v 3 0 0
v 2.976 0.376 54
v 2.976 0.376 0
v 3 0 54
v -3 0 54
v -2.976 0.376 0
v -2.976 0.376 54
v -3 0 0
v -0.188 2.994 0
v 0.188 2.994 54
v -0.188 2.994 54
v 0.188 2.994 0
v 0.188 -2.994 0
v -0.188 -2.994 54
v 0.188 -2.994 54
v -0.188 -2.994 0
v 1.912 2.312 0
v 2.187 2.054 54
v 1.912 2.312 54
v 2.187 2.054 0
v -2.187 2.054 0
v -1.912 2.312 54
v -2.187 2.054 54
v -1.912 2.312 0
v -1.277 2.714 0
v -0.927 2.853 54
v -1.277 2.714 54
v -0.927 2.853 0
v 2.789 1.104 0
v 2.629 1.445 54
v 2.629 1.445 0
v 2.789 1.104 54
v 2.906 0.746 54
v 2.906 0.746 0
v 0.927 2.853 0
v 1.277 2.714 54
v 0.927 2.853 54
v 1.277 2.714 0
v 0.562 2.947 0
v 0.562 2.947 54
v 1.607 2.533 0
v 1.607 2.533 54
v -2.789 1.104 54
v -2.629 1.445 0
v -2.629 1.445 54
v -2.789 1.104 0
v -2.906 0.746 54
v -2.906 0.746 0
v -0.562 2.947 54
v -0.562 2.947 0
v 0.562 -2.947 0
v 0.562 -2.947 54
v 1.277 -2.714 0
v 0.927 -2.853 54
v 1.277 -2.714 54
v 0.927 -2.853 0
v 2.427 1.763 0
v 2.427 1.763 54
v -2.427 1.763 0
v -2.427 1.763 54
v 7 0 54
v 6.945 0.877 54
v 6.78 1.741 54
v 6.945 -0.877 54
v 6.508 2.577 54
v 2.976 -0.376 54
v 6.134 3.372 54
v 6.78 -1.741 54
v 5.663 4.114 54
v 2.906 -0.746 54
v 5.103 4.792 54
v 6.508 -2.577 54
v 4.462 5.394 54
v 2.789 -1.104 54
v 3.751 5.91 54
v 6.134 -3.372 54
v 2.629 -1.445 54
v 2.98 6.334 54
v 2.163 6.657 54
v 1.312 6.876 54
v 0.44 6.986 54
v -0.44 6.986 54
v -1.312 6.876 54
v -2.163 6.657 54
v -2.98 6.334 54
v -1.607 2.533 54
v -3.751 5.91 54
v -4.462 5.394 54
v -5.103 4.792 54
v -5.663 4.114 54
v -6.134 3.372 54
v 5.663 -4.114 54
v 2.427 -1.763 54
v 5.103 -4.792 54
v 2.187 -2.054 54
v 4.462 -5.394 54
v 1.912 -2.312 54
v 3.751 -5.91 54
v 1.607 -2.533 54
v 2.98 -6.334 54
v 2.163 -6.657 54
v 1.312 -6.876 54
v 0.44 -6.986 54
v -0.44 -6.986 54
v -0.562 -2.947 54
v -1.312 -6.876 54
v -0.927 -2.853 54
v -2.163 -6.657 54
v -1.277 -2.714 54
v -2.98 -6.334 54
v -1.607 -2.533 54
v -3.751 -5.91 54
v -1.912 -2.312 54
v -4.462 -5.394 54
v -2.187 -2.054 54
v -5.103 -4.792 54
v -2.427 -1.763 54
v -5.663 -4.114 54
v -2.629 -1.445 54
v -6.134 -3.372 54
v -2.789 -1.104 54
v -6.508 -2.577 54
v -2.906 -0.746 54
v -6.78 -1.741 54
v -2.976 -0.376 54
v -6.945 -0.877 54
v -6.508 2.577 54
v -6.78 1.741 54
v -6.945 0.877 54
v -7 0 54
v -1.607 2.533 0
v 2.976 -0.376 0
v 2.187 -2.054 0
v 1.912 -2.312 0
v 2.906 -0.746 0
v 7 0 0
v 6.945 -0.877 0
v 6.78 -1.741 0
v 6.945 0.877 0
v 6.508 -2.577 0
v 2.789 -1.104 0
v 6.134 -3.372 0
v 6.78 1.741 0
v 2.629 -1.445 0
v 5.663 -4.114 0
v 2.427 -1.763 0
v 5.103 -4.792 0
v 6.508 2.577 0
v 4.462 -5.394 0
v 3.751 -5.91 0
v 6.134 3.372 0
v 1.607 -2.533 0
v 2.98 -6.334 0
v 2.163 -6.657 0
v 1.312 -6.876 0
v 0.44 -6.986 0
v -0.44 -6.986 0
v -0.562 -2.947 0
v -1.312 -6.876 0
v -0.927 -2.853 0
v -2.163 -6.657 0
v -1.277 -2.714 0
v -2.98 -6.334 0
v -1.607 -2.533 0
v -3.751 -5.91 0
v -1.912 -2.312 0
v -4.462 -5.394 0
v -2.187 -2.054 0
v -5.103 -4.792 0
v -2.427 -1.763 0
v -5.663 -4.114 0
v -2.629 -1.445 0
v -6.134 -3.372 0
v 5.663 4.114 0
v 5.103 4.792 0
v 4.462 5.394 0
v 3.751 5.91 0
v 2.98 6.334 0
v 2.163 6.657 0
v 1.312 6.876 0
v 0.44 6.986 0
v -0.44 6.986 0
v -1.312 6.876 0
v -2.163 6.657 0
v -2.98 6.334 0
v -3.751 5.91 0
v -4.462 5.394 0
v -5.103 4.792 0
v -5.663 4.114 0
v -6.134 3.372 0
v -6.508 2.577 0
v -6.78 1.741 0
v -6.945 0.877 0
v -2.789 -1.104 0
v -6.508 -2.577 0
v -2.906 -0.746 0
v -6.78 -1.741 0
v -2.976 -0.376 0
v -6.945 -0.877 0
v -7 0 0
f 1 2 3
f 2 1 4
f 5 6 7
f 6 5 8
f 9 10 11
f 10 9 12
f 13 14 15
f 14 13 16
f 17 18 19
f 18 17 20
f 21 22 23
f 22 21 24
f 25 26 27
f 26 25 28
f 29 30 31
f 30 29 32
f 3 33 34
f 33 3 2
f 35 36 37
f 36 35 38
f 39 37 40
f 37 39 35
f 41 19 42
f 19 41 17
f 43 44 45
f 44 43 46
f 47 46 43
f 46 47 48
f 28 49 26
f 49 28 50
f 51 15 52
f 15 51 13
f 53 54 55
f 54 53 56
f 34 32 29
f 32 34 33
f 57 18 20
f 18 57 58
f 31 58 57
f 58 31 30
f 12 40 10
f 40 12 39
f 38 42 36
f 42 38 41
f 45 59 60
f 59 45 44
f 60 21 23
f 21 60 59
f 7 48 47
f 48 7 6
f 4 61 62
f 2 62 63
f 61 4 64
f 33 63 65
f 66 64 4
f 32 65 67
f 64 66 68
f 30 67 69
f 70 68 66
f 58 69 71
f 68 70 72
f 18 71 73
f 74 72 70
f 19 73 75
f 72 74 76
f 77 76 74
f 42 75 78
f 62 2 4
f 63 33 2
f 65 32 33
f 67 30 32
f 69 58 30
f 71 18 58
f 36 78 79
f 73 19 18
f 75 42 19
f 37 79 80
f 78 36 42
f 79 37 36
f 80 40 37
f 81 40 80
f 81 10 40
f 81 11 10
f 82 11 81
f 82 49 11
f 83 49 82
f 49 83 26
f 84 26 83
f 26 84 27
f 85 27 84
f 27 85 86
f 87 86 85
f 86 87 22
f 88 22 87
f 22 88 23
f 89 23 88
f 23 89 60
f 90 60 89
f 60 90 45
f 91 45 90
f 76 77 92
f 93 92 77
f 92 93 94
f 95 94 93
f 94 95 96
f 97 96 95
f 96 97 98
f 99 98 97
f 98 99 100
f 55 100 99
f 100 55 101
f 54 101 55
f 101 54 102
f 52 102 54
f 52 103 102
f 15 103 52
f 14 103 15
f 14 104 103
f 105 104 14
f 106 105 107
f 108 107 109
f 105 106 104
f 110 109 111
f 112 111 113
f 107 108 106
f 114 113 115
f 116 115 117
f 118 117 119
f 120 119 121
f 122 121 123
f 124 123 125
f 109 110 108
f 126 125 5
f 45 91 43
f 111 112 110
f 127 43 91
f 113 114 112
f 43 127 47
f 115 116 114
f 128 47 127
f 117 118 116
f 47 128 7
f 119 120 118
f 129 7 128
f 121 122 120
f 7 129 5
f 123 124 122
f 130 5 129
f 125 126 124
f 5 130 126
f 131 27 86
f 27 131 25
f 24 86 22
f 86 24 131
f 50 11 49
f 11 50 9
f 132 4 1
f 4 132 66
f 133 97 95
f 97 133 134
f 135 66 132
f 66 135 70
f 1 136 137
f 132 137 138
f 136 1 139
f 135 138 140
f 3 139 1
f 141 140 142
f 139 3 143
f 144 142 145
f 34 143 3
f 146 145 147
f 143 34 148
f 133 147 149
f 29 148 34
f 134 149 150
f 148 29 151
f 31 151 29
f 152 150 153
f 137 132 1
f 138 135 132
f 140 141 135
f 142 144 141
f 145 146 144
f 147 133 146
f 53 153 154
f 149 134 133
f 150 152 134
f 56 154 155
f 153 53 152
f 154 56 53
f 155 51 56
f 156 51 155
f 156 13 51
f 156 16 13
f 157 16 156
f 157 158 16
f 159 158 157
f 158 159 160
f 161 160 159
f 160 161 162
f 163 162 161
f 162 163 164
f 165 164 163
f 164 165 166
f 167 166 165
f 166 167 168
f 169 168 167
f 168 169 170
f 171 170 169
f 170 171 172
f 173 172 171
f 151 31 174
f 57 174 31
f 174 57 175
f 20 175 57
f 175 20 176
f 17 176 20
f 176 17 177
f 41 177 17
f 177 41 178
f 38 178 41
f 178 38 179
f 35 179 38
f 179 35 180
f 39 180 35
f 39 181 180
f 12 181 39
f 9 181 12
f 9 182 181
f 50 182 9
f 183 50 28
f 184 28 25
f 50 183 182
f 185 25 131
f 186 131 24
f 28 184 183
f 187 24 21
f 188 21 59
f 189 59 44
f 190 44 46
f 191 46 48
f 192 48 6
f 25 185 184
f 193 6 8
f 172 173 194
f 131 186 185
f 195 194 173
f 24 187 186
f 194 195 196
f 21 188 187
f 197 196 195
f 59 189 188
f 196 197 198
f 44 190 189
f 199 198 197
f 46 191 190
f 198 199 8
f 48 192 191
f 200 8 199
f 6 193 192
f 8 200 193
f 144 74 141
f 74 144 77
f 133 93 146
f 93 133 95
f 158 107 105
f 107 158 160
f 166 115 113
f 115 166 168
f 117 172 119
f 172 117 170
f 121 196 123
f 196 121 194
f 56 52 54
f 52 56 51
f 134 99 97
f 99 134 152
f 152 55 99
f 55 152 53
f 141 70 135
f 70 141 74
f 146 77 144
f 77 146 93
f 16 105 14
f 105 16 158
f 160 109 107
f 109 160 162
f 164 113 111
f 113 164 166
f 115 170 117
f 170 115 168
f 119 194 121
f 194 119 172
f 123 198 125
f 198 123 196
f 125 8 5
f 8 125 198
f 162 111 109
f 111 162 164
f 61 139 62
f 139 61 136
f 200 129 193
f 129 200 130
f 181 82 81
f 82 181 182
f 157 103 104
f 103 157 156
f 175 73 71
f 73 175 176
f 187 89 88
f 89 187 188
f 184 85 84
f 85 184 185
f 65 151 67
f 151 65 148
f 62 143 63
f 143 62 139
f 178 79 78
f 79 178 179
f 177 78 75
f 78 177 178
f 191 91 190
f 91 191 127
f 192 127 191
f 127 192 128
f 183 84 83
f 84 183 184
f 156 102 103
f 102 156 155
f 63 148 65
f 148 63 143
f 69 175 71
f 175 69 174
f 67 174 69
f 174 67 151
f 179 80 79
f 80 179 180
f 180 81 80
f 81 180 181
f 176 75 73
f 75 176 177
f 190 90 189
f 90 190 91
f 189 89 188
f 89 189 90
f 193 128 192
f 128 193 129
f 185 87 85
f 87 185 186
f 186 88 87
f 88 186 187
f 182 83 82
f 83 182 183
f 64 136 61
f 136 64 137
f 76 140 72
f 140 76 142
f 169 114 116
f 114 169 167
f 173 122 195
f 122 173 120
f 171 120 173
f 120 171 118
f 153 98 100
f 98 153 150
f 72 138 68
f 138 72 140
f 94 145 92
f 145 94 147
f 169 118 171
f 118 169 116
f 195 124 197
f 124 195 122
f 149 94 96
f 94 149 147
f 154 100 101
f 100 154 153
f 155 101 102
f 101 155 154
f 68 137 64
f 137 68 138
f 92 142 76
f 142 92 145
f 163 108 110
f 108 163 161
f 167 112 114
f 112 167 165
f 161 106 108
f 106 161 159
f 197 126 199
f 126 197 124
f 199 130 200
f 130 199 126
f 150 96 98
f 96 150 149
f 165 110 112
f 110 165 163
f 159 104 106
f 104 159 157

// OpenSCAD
$fn = 50;


difference() {
	union() {
		cylinder(h = 54, r = 7.0000000000);
	}
	union() {
		cylinder(h = 54, r = 3.0000000000);
		cylinder(h = 54, r = 1.5000000000);
		cylinder(h = 54, r = 1.5000000000);
		cylinder(h = 54, r = 1.5000000000);
	}
}
